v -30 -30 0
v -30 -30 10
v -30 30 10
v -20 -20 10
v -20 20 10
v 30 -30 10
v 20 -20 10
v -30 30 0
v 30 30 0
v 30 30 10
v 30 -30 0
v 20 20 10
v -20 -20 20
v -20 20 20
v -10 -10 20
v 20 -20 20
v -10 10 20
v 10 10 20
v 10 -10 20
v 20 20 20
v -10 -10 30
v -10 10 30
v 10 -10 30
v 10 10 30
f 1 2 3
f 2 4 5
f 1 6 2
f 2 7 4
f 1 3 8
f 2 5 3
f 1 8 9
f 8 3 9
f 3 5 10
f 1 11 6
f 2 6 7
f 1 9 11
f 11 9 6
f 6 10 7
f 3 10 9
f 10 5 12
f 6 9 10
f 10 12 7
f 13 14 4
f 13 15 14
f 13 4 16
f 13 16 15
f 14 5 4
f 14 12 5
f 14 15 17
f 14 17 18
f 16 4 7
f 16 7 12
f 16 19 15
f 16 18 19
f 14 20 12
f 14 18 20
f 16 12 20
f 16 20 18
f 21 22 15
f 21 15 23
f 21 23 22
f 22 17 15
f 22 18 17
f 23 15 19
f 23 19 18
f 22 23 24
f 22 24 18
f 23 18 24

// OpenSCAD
// 3段の階段状ピラミッド
// 各段は中心を揃えて積み上げる

module step_pyramid() {
    // 1段目: 60mm x 60mm x 10mm
    translate([0, 0, 0])
        cube([60, 60, 10], center = true);

    // 2段目: 40mm x 40mm x 10mm
    translate([0, 0, 10])
        cube([40, 40, 10], center = true);

    // 3段目: 20mm x 20mm x 10mm
    translate([0, 0, 20])
        cube([20, 20, 10], center = true);
}

// Z=0 を底面にして配置
translate([0, 0, 5])
    step_pyramid();
